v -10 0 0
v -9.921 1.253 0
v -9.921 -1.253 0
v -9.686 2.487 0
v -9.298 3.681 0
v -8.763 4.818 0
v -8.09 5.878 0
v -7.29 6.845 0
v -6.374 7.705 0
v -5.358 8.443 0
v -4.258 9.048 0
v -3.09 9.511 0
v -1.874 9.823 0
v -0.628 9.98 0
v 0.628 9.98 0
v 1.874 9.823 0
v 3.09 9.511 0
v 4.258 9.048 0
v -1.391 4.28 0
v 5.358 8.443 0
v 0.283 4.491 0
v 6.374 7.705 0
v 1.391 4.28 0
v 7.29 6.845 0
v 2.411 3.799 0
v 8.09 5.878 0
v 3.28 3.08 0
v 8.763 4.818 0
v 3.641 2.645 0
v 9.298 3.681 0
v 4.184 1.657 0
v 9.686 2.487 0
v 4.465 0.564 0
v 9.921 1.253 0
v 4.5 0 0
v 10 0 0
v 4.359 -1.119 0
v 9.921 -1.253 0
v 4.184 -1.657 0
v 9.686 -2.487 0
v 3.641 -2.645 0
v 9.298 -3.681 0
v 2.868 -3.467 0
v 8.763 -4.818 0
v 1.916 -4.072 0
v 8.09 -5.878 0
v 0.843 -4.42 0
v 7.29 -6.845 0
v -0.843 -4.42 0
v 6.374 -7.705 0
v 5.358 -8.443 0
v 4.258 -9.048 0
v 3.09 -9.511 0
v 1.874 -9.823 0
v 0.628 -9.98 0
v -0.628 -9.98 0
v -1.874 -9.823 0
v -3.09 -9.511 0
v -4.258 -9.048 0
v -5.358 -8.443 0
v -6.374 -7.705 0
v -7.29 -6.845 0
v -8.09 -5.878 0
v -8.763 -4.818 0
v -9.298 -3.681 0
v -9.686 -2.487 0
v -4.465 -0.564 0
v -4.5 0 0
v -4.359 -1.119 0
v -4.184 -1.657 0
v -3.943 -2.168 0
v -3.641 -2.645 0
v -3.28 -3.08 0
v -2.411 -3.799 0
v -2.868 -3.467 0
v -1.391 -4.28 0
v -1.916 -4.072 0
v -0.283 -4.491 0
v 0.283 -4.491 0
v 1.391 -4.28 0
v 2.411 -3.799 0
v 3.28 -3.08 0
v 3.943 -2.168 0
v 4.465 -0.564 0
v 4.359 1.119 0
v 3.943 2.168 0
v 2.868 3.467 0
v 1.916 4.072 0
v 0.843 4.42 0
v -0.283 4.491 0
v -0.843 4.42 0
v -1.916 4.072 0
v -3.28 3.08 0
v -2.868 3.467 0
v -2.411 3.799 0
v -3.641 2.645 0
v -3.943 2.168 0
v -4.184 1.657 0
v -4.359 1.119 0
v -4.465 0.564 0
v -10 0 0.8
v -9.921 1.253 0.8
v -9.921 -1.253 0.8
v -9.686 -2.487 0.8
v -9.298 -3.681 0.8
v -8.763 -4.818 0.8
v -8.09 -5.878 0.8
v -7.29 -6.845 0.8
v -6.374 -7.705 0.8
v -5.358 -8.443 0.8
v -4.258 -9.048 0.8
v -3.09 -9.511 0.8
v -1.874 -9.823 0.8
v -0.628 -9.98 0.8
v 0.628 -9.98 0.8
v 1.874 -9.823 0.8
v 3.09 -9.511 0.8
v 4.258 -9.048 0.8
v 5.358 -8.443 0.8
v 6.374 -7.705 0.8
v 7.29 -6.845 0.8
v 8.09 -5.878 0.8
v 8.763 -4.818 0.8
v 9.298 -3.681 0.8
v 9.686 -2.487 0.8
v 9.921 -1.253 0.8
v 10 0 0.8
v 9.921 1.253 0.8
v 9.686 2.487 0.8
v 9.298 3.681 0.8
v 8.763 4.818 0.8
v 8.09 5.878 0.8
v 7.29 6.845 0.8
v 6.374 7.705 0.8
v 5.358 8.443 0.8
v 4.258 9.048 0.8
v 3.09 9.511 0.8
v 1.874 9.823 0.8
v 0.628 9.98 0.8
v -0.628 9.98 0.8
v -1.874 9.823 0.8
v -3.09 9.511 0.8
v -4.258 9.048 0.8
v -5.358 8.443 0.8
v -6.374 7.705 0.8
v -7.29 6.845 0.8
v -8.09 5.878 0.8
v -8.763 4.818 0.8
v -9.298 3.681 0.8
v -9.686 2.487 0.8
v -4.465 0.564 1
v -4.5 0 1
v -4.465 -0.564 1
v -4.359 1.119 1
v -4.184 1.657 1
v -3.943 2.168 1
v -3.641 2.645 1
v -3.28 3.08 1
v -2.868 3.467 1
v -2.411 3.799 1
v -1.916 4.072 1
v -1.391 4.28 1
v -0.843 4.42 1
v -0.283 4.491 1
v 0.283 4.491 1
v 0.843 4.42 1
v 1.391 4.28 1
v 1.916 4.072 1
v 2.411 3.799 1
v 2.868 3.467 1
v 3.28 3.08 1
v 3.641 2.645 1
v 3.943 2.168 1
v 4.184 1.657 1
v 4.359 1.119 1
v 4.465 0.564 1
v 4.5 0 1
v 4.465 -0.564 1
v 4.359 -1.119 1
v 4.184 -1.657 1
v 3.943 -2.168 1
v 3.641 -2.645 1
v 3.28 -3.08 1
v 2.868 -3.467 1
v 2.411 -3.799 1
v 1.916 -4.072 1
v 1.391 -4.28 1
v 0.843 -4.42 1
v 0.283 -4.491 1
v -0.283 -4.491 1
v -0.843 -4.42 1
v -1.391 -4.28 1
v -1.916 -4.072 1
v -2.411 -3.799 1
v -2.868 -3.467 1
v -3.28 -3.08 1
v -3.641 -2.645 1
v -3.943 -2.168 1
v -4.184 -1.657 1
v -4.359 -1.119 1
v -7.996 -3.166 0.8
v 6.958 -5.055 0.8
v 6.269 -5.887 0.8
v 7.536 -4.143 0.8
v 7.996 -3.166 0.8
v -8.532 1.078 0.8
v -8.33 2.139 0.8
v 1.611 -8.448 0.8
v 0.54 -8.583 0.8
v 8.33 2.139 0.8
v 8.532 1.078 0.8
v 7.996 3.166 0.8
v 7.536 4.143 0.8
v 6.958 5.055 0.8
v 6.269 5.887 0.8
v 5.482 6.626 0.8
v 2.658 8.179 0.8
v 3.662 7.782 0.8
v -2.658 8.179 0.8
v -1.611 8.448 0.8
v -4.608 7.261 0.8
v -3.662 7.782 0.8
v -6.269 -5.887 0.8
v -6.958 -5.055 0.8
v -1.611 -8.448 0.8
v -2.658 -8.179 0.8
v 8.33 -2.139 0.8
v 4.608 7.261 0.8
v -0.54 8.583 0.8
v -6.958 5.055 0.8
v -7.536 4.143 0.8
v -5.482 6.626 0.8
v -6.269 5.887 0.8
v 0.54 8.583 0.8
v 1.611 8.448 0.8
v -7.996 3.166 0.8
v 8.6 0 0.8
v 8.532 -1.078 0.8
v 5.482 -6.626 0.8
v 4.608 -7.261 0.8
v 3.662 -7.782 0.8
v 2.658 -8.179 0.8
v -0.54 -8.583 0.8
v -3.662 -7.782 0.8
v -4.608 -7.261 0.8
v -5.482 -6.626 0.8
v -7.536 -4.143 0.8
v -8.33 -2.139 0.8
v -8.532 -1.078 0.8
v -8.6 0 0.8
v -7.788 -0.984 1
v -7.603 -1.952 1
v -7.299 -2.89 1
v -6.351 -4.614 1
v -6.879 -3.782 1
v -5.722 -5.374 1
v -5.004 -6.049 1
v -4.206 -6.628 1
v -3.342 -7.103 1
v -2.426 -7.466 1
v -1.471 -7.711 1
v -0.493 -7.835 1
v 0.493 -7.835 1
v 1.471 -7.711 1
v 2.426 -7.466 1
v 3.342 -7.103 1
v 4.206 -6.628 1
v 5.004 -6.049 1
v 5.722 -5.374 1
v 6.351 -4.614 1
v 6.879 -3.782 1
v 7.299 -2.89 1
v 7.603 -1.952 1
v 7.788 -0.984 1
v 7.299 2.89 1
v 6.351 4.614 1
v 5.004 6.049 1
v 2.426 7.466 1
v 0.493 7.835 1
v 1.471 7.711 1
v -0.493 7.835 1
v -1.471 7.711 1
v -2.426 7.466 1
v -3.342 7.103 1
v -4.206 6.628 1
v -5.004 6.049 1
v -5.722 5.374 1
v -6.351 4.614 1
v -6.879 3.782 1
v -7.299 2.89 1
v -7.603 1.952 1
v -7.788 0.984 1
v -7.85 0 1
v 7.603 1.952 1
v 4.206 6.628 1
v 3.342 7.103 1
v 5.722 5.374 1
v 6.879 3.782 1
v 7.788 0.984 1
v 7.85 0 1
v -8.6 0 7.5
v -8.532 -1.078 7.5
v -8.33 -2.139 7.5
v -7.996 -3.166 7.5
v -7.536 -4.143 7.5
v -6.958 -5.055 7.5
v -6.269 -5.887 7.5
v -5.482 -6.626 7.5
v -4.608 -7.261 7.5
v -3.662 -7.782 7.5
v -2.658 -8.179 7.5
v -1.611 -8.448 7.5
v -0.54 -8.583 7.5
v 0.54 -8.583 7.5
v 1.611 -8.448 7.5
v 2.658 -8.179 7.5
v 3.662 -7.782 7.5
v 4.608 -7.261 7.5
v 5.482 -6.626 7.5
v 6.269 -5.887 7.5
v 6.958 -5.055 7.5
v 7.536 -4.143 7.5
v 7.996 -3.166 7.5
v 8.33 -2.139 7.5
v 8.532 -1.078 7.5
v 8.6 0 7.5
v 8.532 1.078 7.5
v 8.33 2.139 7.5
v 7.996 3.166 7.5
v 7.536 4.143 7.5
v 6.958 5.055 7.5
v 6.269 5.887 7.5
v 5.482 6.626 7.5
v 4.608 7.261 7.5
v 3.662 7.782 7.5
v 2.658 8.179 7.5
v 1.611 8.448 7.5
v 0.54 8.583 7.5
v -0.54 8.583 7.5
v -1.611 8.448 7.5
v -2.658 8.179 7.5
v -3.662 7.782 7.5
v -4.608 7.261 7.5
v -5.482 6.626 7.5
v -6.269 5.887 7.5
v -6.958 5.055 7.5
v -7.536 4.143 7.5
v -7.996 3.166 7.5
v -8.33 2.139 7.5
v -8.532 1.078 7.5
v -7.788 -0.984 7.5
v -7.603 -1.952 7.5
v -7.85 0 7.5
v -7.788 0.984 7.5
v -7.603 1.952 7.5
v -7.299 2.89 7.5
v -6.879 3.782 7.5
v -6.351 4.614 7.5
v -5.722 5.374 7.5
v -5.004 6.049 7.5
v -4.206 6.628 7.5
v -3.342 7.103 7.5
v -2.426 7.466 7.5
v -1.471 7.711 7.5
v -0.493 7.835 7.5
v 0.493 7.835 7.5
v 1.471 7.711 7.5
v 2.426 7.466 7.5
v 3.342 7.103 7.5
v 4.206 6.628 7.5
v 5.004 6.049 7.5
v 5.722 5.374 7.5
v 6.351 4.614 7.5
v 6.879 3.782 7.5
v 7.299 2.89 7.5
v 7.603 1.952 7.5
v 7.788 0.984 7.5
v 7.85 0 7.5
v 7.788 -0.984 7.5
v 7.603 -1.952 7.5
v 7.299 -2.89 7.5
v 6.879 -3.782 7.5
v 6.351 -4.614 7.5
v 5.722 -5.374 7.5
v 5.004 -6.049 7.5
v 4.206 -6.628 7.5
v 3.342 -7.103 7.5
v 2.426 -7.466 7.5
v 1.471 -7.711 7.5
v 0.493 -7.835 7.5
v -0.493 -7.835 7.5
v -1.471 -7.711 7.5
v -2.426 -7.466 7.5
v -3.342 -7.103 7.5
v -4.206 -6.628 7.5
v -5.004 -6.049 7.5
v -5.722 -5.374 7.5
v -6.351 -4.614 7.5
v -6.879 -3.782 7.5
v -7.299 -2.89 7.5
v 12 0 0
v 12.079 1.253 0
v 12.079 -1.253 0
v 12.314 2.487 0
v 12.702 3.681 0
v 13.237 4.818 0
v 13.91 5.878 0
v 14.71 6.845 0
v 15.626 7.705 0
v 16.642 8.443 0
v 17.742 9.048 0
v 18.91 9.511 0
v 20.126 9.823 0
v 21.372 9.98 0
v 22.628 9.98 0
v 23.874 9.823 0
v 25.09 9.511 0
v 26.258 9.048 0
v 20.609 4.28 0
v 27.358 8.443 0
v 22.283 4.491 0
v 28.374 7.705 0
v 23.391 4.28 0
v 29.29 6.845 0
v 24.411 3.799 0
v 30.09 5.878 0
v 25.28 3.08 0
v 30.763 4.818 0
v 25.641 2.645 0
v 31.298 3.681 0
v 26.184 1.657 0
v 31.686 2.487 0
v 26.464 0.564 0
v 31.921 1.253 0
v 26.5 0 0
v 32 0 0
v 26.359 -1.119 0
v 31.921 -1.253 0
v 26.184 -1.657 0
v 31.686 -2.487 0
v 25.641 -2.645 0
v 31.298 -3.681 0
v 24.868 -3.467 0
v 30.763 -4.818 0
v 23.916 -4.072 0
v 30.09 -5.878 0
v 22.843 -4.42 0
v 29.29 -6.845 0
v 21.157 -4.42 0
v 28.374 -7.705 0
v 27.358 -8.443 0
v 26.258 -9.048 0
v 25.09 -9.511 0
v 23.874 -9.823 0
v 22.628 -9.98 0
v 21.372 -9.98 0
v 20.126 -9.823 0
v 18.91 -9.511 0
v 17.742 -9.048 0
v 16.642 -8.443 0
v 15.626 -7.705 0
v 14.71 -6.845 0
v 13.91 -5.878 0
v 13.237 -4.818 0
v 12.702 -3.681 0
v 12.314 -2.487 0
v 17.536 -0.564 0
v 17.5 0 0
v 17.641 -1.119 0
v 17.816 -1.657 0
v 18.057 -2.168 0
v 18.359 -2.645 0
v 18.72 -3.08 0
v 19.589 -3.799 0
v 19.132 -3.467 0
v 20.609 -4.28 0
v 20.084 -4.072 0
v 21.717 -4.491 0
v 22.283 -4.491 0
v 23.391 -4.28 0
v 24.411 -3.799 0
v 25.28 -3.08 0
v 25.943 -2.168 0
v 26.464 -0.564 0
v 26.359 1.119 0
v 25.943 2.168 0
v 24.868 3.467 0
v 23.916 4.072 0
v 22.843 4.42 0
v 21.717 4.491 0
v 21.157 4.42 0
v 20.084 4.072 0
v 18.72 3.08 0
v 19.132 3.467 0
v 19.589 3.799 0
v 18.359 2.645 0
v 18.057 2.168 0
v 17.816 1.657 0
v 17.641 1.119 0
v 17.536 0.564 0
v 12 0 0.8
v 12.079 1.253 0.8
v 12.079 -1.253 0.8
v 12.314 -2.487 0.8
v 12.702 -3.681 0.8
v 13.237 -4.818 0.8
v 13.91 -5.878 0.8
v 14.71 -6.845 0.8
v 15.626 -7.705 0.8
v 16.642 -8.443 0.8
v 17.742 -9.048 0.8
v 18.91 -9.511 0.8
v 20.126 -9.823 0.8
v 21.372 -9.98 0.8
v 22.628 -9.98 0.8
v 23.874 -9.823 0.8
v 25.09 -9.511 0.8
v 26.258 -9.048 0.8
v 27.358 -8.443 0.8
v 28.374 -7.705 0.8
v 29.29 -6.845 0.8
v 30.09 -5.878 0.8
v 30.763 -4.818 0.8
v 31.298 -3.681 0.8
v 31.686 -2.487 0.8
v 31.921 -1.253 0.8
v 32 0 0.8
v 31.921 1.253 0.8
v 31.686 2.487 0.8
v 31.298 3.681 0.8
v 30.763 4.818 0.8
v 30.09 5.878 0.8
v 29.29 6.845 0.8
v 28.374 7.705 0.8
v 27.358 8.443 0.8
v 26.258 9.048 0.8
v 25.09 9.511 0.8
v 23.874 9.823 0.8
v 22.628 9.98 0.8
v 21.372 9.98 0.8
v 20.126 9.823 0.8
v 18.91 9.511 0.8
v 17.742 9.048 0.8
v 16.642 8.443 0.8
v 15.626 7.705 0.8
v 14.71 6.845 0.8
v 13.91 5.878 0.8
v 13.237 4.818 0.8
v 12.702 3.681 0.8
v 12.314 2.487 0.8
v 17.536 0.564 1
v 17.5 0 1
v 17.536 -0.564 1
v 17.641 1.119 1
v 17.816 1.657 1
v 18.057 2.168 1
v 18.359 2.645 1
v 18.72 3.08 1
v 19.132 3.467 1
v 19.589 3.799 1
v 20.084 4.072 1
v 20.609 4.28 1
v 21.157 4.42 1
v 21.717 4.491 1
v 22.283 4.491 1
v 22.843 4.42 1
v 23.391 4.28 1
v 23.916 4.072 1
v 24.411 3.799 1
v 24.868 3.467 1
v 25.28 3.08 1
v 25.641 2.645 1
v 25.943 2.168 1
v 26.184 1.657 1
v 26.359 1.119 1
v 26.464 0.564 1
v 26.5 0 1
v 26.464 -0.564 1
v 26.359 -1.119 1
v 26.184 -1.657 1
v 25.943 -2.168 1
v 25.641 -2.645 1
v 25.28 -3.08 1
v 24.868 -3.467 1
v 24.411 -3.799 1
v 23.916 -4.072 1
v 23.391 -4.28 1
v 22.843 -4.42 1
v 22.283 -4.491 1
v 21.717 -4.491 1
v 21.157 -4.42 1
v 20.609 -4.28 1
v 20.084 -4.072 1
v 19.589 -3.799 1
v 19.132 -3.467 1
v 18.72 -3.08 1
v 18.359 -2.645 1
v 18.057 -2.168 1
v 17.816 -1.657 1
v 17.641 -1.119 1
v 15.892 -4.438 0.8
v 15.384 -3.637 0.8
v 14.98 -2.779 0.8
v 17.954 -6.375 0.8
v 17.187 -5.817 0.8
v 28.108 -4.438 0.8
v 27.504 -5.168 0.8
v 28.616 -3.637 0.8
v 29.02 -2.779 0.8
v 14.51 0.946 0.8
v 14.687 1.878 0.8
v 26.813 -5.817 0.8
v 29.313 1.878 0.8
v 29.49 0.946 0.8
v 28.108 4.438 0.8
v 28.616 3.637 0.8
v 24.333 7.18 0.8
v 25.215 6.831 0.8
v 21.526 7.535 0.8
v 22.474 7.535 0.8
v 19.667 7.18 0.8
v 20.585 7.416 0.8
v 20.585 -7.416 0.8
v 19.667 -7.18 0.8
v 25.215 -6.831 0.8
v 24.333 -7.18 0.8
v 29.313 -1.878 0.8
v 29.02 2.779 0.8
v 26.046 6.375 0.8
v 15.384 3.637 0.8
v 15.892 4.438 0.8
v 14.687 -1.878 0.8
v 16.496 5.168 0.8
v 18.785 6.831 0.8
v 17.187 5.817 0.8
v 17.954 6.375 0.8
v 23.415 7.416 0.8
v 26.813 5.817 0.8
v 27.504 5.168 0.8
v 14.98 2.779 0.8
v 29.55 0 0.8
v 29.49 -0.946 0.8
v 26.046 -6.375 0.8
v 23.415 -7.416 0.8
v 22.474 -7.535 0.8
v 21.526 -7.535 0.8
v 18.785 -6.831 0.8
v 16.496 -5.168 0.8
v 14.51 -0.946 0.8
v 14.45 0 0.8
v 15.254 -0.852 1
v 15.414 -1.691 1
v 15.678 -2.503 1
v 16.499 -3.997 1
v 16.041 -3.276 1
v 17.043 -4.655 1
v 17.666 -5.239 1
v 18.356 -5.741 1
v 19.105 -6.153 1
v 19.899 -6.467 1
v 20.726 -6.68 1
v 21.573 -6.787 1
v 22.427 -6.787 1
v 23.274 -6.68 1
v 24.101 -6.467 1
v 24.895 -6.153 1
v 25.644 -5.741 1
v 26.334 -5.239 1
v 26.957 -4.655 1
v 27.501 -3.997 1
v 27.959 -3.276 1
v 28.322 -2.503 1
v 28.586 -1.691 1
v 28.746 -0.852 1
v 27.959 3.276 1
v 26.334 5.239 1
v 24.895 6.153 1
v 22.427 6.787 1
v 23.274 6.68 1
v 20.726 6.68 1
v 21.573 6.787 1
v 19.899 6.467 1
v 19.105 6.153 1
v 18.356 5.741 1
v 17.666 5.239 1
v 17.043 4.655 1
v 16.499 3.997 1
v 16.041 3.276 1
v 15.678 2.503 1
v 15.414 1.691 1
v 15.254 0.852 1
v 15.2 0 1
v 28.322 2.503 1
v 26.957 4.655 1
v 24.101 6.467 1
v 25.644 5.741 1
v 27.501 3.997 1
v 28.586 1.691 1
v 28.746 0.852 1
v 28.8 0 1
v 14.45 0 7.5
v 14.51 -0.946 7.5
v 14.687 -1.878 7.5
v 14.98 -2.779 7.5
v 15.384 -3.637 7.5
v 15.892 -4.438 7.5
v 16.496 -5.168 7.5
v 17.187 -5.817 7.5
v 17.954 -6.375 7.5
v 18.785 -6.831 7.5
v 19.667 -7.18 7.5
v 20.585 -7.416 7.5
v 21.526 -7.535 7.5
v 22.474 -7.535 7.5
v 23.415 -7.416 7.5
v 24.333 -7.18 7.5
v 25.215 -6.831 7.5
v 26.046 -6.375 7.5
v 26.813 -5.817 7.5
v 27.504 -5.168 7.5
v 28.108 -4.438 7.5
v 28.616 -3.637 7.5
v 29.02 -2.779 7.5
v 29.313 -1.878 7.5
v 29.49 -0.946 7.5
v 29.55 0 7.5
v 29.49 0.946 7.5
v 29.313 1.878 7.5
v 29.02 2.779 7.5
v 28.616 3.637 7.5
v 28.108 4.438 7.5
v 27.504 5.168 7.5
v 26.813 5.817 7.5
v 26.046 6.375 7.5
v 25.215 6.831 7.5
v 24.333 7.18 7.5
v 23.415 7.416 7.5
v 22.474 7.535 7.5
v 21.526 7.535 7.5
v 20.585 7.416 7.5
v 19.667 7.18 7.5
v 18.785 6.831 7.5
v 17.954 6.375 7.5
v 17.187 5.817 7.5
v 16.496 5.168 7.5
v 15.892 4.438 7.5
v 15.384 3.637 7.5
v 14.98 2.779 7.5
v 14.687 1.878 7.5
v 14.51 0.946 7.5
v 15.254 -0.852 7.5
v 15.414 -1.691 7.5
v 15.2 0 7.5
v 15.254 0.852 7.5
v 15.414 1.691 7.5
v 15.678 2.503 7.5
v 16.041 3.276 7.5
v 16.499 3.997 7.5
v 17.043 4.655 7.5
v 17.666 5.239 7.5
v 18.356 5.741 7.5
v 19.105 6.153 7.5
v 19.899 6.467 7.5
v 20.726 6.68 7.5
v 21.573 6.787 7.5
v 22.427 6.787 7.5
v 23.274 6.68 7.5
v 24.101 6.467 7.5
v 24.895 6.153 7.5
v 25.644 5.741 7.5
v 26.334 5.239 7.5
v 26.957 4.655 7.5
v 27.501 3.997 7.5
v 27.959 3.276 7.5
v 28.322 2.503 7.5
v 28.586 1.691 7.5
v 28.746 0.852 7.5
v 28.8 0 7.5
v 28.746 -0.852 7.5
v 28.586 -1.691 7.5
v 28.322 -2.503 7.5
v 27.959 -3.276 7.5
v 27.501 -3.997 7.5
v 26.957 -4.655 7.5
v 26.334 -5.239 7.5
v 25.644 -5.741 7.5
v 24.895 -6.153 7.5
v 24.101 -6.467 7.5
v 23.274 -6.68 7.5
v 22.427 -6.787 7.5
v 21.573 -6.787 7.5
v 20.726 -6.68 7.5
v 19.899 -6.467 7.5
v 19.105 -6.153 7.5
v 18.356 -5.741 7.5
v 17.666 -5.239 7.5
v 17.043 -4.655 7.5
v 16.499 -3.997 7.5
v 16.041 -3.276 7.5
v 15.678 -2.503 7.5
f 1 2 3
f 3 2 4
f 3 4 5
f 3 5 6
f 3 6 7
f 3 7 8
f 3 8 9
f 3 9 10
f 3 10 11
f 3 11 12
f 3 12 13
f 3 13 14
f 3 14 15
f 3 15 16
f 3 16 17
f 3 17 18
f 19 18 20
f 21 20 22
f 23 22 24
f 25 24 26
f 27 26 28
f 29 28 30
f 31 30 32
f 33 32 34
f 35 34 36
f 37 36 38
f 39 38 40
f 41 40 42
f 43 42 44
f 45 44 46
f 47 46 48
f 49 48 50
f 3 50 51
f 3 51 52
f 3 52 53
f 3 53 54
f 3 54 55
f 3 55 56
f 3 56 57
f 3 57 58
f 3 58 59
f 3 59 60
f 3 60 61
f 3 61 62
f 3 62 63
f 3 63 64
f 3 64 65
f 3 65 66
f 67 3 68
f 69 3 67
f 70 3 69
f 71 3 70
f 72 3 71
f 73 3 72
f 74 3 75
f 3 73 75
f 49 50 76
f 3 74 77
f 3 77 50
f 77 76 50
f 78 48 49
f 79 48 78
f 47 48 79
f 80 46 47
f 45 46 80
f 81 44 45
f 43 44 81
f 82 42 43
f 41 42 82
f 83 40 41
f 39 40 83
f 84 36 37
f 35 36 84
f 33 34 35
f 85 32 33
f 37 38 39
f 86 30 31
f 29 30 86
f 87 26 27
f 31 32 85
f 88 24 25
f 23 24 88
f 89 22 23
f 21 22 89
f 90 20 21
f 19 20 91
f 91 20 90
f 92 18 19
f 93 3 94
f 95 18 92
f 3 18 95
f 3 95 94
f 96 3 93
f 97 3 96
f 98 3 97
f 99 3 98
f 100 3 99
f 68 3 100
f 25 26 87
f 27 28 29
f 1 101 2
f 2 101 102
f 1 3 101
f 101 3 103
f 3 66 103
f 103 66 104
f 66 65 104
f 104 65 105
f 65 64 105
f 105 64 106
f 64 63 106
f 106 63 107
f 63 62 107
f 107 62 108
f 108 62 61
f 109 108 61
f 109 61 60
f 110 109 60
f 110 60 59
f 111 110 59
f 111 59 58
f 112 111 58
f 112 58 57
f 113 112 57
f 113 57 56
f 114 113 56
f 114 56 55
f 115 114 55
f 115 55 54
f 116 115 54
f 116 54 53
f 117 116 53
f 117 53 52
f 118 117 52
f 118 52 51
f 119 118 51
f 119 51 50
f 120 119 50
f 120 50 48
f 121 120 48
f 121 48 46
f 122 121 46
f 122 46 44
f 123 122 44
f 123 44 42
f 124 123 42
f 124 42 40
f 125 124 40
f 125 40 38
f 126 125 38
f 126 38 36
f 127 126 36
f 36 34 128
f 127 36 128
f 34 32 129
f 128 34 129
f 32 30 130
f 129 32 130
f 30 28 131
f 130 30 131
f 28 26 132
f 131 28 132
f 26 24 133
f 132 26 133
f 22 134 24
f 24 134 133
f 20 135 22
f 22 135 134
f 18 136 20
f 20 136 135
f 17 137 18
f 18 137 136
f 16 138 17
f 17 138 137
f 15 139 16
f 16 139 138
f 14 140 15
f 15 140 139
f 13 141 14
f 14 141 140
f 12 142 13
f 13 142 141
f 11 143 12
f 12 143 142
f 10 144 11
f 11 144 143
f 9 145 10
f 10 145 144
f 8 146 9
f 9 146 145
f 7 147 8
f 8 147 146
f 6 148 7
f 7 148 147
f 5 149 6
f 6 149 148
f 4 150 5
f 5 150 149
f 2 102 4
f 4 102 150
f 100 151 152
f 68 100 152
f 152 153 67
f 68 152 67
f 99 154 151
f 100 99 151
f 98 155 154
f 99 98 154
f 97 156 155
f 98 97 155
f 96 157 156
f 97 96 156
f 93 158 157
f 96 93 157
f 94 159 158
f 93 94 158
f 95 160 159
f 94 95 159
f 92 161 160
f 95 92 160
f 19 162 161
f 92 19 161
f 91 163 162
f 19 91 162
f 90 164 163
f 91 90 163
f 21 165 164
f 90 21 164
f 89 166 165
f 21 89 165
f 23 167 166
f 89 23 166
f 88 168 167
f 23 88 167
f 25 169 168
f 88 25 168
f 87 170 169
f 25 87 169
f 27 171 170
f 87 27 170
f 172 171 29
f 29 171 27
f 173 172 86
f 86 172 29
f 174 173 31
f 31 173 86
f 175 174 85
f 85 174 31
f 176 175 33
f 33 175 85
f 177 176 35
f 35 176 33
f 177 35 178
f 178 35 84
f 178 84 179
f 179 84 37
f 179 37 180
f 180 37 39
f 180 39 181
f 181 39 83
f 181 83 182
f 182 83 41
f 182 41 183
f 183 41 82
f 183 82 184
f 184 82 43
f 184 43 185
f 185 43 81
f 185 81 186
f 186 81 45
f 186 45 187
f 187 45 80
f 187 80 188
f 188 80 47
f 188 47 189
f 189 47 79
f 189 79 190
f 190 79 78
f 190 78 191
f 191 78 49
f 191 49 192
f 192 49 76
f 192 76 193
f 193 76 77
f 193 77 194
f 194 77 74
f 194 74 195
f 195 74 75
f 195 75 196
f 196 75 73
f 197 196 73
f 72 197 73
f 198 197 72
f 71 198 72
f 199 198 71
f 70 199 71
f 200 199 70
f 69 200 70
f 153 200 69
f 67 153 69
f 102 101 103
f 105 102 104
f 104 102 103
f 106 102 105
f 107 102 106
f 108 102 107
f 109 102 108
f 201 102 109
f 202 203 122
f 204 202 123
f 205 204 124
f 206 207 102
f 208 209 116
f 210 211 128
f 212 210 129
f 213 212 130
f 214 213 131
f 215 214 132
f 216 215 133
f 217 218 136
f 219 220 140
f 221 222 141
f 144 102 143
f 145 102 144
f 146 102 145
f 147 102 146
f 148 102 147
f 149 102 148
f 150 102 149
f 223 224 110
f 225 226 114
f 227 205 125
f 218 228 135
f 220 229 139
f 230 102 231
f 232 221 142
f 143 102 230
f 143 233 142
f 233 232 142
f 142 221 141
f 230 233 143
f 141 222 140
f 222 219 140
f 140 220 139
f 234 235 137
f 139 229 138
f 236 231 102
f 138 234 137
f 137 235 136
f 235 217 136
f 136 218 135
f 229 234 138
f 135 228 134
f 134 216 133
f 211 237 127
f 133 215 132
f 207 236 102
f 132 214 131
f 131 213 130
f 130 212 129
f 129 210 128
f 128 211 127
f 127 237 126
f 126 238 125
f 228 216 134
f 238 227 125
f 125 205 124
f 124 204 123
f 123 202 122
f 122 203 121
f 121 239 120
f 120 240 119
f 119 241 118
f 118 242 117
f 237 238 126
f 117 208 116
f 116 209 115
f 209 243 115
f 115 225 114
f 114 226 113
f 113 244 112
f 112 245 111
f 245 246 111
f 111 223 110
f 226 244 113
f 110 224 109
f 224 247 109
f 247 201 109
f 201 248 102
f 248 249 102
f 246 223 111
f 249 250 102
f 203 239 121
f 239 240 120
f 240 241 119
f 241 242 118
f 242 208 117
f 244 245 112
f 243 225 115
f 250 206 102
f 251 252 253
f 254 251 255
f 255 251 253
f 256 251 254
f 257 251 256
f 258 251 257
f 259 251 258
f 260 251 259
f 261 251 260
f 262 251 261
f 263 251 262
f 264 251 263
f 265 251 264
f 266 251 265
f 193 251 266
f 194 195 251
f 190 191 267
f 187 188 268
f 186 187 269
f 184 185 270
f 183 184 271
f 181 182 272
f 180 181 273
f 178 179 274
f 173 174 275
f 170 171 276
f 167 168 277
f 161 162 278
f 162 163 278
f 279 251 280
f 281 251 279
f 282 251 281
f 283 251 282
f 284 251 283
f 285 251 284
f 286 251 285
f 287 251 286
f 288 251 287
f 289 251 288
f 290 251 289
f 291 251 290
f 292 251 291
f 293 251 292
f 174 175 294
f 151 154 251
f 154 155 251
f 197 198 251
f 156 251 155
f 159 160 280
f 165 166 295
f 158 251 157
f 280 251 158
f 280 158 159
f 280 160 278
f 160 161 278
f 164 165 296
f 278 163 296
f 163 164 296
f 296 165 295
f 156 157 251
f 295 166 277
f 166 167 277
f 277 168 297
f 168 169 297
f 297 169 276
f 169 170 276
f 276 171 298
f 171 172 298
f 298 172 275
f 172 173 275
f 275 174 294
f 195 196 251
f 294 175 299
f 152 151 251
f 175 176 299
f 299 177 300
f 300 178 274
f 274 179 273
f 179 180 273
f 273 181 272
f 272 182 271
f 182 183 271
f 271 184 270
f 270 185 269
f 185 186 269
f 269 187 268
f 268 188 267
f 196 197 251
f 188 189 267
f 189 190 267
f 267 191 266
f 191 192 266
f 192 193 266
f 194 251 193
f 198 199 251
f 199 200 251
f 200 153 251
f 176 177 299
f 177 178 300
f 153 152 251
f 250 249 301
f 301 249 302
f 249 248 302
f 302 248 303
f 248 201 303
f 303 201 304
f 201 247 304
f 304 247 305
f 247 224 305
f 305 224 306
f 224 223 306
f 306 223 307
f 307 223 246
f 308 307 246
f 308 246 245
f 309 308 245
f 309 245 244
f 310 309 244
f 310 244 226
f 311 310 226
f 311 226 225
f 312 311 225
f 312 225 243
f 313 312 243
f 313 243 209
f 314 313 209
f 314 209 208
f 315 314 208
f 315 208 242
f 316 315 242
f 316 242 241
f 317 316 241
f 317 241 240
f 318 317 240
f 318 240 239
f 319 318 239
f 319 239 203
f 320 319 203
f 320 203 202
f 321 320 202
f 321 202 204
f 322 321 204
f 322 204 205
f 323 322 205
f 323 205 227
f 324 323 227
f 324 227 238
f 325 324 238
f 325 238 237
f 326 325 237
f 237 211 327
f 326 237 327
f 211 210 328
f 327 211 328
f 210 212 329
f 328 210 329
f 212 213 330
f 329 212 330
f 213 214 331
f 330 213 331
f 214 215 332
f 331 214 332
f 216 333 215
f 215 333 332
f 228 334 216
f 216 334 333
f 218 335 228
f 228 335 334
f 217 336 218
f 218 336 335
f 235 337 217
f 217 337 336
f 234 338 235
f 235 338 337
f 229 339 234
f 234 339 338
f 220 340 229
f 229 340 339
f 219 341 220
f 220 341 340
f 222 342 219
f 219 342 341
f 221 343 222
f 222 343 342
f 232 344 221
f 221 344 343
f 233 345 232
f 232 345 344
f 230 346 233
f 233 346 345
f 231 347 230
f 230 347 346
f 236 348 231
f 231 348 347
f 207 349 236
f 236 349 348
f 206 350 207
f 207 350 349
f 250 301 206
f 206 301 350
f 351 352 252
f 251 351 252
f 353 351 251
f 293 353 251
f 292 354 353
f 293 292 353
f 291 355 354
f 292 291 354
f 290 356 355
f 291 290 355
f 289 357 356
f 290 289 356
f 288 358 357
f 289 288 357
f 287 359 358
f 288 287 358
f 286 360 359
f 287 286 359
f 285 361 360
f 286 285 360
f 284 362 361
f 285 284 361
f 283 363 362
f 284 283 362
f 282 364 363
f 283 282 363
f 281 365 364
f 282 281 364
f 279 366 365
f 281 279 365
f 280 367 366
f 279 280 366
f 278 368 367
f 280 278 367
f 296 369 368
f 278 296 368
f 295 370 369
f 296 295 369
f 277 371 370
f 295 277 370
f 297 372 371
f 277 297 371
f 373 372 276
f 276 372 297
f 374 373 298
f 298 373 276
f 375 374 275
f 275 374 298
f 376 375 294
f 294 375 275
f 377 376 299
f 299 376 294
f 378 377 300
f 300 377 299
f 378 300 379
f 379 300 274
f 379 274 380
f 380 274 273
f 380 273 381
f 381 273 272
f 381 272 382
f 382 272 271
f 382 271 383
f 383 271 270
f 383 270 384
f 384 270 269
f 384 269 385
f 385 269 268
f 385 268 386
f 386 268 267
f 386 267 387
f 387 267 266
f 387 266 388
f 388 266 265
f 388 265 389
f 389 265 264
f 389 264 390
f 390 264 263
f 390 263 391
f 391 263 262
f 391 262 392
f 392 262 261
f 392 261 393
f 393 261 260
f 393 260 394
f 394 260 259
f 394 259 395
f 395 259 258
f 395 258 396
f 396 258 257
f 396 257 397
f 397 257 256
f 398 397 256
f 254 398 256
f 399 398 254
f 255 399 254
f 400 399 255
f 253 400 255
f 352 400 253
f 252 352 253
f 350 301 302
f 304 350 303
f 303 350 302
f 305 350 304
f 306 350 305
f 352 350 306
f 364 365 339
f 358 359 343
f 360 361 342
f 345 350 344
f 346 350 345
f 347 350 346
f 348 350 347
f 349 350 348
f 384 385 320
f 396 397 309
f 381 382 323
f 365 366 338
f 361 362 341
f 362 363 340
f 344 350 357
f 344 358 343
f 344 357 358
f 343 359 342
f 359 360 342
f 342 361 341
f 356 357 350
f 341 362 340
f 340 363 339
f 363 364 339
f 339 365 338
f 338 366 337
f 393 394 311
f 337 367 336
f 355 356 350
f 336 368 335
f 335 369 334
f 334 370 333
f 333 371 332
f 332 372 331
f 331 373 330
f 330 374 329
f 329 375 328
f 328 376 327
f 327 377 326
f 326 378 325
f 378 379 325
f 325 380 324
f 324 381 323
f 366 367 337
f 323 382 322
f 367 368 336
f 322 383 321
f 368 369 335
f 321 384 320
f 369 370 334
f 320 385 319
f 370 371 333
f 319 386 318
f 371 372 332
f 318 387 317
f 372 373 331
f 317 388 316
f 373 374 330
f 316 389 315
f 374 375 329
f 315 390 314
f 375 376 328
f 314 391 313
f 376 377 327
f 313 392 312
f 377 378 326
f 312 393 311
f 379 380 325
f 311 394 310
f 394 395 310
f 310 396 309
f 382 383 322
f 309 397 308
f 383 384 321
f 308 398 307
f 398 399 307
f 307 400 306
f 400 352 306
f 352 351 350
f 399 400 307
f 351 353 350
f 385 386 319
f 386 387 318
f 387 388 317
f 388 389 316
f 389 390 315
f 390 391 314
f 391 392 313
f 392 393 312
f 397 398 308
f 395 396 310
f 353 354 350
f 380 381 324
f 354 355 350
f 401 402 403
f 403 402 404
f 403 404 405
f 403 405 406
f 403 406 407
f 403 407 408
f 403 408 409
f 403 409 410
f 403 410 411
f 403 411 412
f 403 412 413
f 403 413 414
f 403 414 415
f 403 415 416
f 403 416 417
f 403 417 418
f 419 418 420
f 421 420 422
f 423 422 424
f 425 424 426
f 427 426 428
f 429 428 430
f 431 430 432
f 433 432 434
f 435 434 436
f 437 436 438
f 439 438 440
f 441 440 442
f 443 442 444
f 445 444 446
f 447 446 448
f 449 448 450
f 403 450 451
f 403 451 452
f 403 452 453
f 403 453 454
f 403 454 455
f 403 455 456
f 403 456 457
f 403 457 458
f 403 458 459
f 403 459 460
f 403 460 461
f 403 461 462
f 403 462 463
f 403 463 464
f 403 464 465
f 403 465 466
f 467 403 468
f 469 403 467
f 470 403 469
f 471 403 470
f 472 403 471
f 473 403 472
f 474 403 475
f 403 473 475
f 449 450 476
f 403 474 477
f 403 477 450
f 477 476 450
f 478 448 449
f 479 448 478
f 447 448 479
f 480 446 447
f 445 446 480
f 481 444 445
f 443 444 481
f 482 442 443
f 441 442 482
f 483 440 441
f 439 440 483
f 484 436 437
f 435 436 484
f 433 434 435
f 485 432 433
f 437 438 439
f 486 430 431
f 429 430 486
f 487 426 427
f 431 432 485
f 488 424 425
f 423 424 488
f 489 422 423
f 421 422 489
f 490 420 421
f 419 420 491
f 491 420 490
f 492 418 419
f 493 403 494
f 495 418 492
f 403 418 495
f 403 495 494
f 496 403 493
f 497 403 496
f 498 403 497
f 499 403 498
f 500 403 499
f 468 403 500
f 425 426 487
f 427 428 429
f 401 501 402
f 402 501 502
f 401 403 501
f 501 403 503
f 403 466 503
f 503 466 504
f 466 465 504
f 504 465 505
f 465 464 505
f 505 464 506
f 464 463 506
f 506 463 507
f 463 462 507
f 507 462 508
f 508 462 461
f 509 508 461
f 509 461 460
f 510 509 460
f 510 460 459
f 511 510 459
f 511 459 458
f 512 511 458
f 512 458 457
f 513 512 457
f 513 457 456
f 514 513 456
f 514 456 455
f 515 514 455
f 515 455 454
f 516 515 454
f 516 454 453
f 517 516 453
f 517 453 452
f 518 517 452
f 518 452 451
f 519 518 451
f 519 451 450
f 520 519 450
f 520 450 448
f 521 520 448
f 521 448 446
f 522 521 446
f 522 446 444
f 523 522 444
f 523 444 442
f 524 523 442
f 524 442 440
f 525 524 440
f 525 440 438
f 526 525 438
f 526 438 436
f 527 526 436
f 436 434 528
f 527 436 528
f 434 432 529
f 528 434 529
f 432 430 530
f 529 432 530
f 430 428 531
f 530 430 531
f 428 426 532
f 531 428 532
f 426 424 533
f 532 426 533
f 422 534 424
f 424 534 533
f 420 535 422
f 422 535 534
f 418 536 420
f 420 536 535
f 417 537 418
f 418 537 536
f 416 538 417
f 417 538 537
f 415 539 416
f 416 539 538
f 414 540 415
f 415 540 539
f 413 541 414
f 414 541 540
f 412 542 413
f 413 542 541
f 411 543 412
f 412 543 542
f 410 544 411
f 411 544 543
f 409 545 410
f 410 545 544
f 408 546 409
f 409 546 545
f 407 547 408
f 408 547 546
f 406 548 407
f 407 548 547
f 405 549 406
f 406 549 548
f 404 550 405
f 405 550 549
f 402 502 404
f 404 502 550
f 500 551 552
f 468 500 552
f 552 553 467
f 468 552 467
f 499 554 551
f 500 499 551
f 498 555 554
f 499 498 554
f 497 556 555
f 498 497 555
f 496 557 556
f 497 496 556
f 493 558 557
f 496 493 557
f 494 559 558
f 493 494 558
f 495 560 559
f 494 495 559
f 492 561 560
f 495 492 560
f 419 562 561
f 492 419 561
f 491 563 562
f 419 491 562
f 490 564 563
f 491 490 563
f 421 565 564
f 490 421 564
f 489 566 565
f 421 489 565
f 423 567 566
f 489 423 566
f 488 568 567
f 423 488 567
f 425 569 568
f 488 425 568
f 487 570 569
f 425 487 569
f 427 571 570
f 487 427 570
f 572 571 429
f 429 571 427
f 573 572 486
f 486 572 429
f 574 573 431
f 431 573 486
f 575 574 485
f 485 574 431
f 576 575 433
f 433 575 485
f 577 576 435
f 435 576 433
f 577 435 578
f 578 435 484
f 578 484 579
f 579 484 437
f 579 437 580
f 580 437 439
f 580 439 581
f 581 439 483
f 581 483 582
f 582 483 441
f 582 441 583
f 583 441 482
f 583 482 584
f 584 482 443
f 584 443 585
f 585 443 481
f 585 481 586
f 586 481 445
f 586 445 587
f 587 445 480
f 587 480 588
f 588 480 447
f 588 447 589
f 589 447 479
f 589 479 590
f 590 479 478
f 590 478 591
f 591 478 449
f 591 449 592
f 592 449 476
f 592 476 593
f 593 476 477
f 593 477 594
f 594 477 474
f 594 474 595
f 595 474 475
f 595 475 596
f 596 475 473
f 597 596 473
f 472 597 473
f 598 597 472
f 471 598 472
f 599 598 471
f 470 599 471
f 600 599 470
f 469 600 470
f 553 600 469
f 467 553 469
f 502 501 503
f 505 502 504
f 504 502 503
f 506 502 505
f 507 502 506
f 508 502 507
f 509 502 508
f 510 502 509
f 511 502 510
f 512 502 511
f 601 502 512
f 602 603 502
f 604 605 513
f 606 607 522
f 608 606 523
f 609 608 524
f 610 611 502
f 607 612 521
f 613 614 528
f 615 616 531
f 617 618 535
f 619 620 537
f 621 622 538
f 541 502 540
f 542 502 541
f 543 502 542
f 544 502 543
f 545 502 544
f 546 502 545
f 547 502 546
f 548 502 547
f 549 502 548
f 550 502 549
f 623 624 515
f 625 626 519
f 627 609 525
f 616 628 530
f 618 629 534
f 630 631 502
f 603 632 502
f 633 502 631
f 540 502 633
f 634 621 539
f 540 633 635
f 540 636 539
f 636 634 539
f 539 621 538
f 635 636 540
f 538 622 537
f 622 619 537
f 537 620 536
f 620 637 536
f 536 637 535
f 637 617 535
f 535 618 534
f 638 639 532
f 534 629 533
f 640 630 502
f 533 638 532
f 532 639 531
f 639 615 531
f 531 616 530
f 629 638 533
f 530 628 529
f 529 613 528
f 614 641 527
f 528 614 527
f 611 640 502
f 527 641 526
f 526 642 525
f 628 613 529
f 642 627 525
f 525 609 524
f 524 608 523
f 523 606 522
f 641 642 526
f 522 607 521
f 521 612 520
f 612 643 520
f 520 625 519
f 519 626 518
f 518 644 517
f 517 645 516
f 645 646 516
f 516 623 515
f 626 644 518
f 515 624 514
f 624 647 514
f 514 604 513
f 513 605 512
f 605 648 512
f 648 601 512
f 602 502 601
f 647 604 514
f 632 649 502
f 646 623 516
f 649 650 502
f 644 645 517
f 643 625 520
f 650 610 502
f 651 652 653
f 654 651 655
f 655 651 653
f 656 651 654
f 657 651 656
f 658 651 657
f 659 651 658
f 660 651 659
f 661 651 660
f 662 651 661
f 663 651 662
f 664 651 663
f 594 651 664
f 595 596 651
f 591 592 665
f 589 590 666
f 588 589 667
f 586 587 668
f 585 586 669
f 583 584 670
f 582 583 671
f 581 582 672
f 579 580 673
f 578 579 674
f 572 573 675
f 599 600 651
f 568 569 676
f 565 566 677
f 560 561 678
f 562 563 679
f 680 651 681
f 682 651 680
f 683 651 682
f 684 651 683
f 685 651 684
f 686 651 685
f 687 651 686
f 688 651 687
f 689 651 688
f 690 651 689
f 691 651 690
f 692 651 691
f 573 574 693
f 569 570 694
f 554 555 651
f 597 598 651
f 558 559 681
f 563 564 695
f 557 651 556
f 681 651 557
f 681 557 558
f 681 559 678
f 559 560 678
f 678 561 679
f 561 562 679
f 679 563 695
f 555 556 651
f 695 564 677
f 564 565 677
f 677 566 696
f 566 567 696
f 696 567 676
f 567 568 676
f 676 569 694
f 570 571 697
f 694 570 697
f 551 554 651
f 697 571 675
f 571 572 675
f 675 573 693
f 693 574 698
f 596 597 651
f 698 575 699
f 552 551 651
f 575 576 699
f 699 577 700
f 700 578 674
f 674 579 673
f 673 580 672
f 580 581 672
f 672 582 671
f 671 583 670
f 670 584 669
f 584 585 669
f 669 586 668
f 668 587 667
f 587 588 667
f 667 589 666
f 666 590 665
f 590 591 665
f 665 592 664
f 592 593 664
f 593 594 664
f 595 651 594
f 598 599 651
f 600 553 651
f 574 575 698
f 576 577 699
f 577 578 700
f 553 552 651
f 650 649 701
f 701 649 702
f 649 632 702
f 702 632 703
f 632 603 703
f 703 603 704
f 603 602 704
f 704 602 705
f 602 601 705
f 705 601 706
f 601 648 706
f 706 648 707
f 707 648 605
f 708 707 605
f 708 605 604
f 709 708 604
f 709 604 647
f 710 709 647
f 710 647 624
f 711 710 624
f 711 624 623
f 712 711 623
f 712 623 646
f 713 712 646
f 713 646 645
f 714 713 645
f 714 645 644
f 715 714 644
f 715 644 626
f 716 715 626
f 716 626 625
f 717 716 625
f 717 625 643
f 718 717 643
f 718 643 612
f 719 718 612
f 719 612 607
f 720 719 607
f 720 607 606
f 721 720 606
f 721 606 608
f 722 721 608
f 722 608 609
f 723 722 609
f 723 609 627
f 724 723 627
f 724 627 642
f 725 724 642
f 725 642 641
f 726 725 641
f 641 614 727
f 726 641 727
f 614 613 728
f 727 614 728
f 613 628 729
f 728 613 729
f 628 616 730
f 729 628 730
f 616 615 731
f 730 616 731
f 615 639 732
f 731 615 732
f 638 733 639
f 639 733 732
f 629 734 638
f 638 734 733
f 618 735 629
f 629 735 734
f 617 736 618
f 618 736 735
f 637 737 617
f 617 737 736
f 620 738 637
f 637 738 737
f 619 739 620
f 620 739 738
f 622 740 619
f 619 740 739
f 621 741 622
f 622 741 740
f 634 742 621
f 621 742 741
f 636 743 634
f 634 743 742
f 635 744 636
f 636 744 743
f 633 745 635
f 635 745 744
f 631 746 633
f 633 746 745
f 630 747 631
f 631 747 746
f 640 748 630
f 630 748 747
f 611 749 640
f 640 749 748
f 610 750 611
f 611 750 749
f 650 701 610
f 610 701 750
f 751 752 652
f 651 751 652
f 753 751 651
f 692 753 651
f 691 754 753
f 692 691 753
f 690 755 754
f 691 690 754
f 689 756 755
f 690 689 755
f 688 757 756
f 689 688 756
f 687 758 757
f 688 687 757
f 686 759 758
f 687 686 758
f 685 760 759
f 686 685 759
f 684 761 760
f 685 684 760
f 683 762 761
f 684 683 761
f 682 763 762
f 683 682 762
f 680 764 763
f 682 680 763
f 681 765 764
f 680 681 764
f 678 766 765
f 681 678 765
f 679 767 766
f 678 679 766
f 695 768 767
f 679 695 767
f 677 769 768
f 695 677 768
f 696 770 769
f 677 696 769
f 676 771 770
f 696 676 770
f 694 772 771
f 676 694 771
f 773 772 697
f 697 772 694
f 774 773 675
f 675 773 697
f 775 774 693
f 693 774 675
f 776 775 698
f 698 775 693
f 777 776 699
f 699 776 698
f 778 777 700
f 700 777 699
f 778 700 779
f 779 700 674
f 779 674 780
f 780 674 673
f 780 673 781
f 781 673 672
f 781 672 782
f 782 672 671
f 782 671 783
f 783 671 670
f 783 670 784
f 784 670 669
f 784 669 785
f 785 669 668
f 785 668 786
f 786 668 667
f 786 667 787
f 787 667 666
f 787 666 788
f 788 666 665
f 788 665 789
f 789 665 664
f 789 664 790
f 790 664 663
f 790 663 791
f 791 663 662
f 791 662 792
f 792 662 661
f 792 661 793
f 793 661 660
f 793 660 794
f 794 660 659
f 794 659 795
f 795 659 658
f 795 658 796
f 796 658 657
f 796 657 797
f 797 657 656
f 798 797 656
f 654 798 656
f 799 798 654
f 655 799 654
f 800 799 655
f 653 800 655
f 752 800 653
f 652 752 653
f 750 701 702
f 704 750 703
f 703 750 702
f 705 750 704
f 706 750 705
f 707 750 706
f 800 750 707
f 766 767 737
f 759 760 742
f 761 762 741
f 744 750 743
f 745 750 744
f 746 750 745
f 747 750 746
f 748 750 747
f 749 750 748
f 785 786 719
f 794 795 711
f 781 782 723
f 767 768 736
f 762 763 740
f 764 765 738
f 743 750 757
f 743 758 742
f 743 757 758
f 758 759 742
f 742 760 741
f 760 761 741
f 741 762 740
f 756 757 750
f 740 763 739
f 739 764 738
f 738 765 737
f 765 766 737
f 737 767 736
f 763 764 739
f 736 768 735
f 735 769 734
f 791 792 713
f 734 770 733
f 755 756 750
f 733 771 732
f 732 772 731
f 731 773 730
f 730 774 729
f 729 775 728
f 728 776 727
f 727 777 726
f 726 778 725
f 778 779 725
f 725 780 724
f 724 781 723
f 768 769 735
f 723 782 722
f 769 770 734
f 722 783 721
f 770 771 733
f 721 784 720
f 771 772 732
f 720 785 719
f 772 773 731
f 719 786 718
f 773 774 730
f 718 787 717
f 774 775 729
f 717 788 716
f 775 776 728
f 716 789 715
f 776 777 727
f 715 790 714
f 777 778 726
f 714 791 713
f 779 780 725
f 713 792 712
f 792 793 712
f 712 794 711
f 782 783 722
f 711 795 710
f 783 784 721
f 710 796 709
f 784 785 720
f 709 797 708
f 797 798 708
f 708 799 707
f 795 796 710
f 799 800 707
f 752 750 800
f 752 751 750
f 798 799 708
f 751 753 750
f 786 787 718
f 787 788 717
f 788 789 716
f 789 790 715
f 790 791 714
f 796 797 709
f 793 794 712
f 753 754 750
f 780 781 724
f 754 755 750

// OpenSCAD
$fn=50;

thingwall = 0.75;
bearing= 13;
clearence = 0.6;

difference(){
union(){
cylinder(h=7.5, r=((bearing+clearence)/2+thingwall+clearence/2)+thingwall);
cylinder(h=0.8, r=10);
}
translate([0,0,1])
cylinder(h=8, r=(bearing+clearence)/2+thingwall+clearence/2);
cylinder(h=8, r=4.5);

}

translate([22,0,0]) difference(){
union(){
cylinder(h=7.5, r=(bearing+clearence)/2+thingwall);
cylinder(h=0.8, r=10);
}
translate([0,0,1])
cylinder(h=8, r=(bearing+clearence)/2);
cylinder(h=8, r=4.5);

}
